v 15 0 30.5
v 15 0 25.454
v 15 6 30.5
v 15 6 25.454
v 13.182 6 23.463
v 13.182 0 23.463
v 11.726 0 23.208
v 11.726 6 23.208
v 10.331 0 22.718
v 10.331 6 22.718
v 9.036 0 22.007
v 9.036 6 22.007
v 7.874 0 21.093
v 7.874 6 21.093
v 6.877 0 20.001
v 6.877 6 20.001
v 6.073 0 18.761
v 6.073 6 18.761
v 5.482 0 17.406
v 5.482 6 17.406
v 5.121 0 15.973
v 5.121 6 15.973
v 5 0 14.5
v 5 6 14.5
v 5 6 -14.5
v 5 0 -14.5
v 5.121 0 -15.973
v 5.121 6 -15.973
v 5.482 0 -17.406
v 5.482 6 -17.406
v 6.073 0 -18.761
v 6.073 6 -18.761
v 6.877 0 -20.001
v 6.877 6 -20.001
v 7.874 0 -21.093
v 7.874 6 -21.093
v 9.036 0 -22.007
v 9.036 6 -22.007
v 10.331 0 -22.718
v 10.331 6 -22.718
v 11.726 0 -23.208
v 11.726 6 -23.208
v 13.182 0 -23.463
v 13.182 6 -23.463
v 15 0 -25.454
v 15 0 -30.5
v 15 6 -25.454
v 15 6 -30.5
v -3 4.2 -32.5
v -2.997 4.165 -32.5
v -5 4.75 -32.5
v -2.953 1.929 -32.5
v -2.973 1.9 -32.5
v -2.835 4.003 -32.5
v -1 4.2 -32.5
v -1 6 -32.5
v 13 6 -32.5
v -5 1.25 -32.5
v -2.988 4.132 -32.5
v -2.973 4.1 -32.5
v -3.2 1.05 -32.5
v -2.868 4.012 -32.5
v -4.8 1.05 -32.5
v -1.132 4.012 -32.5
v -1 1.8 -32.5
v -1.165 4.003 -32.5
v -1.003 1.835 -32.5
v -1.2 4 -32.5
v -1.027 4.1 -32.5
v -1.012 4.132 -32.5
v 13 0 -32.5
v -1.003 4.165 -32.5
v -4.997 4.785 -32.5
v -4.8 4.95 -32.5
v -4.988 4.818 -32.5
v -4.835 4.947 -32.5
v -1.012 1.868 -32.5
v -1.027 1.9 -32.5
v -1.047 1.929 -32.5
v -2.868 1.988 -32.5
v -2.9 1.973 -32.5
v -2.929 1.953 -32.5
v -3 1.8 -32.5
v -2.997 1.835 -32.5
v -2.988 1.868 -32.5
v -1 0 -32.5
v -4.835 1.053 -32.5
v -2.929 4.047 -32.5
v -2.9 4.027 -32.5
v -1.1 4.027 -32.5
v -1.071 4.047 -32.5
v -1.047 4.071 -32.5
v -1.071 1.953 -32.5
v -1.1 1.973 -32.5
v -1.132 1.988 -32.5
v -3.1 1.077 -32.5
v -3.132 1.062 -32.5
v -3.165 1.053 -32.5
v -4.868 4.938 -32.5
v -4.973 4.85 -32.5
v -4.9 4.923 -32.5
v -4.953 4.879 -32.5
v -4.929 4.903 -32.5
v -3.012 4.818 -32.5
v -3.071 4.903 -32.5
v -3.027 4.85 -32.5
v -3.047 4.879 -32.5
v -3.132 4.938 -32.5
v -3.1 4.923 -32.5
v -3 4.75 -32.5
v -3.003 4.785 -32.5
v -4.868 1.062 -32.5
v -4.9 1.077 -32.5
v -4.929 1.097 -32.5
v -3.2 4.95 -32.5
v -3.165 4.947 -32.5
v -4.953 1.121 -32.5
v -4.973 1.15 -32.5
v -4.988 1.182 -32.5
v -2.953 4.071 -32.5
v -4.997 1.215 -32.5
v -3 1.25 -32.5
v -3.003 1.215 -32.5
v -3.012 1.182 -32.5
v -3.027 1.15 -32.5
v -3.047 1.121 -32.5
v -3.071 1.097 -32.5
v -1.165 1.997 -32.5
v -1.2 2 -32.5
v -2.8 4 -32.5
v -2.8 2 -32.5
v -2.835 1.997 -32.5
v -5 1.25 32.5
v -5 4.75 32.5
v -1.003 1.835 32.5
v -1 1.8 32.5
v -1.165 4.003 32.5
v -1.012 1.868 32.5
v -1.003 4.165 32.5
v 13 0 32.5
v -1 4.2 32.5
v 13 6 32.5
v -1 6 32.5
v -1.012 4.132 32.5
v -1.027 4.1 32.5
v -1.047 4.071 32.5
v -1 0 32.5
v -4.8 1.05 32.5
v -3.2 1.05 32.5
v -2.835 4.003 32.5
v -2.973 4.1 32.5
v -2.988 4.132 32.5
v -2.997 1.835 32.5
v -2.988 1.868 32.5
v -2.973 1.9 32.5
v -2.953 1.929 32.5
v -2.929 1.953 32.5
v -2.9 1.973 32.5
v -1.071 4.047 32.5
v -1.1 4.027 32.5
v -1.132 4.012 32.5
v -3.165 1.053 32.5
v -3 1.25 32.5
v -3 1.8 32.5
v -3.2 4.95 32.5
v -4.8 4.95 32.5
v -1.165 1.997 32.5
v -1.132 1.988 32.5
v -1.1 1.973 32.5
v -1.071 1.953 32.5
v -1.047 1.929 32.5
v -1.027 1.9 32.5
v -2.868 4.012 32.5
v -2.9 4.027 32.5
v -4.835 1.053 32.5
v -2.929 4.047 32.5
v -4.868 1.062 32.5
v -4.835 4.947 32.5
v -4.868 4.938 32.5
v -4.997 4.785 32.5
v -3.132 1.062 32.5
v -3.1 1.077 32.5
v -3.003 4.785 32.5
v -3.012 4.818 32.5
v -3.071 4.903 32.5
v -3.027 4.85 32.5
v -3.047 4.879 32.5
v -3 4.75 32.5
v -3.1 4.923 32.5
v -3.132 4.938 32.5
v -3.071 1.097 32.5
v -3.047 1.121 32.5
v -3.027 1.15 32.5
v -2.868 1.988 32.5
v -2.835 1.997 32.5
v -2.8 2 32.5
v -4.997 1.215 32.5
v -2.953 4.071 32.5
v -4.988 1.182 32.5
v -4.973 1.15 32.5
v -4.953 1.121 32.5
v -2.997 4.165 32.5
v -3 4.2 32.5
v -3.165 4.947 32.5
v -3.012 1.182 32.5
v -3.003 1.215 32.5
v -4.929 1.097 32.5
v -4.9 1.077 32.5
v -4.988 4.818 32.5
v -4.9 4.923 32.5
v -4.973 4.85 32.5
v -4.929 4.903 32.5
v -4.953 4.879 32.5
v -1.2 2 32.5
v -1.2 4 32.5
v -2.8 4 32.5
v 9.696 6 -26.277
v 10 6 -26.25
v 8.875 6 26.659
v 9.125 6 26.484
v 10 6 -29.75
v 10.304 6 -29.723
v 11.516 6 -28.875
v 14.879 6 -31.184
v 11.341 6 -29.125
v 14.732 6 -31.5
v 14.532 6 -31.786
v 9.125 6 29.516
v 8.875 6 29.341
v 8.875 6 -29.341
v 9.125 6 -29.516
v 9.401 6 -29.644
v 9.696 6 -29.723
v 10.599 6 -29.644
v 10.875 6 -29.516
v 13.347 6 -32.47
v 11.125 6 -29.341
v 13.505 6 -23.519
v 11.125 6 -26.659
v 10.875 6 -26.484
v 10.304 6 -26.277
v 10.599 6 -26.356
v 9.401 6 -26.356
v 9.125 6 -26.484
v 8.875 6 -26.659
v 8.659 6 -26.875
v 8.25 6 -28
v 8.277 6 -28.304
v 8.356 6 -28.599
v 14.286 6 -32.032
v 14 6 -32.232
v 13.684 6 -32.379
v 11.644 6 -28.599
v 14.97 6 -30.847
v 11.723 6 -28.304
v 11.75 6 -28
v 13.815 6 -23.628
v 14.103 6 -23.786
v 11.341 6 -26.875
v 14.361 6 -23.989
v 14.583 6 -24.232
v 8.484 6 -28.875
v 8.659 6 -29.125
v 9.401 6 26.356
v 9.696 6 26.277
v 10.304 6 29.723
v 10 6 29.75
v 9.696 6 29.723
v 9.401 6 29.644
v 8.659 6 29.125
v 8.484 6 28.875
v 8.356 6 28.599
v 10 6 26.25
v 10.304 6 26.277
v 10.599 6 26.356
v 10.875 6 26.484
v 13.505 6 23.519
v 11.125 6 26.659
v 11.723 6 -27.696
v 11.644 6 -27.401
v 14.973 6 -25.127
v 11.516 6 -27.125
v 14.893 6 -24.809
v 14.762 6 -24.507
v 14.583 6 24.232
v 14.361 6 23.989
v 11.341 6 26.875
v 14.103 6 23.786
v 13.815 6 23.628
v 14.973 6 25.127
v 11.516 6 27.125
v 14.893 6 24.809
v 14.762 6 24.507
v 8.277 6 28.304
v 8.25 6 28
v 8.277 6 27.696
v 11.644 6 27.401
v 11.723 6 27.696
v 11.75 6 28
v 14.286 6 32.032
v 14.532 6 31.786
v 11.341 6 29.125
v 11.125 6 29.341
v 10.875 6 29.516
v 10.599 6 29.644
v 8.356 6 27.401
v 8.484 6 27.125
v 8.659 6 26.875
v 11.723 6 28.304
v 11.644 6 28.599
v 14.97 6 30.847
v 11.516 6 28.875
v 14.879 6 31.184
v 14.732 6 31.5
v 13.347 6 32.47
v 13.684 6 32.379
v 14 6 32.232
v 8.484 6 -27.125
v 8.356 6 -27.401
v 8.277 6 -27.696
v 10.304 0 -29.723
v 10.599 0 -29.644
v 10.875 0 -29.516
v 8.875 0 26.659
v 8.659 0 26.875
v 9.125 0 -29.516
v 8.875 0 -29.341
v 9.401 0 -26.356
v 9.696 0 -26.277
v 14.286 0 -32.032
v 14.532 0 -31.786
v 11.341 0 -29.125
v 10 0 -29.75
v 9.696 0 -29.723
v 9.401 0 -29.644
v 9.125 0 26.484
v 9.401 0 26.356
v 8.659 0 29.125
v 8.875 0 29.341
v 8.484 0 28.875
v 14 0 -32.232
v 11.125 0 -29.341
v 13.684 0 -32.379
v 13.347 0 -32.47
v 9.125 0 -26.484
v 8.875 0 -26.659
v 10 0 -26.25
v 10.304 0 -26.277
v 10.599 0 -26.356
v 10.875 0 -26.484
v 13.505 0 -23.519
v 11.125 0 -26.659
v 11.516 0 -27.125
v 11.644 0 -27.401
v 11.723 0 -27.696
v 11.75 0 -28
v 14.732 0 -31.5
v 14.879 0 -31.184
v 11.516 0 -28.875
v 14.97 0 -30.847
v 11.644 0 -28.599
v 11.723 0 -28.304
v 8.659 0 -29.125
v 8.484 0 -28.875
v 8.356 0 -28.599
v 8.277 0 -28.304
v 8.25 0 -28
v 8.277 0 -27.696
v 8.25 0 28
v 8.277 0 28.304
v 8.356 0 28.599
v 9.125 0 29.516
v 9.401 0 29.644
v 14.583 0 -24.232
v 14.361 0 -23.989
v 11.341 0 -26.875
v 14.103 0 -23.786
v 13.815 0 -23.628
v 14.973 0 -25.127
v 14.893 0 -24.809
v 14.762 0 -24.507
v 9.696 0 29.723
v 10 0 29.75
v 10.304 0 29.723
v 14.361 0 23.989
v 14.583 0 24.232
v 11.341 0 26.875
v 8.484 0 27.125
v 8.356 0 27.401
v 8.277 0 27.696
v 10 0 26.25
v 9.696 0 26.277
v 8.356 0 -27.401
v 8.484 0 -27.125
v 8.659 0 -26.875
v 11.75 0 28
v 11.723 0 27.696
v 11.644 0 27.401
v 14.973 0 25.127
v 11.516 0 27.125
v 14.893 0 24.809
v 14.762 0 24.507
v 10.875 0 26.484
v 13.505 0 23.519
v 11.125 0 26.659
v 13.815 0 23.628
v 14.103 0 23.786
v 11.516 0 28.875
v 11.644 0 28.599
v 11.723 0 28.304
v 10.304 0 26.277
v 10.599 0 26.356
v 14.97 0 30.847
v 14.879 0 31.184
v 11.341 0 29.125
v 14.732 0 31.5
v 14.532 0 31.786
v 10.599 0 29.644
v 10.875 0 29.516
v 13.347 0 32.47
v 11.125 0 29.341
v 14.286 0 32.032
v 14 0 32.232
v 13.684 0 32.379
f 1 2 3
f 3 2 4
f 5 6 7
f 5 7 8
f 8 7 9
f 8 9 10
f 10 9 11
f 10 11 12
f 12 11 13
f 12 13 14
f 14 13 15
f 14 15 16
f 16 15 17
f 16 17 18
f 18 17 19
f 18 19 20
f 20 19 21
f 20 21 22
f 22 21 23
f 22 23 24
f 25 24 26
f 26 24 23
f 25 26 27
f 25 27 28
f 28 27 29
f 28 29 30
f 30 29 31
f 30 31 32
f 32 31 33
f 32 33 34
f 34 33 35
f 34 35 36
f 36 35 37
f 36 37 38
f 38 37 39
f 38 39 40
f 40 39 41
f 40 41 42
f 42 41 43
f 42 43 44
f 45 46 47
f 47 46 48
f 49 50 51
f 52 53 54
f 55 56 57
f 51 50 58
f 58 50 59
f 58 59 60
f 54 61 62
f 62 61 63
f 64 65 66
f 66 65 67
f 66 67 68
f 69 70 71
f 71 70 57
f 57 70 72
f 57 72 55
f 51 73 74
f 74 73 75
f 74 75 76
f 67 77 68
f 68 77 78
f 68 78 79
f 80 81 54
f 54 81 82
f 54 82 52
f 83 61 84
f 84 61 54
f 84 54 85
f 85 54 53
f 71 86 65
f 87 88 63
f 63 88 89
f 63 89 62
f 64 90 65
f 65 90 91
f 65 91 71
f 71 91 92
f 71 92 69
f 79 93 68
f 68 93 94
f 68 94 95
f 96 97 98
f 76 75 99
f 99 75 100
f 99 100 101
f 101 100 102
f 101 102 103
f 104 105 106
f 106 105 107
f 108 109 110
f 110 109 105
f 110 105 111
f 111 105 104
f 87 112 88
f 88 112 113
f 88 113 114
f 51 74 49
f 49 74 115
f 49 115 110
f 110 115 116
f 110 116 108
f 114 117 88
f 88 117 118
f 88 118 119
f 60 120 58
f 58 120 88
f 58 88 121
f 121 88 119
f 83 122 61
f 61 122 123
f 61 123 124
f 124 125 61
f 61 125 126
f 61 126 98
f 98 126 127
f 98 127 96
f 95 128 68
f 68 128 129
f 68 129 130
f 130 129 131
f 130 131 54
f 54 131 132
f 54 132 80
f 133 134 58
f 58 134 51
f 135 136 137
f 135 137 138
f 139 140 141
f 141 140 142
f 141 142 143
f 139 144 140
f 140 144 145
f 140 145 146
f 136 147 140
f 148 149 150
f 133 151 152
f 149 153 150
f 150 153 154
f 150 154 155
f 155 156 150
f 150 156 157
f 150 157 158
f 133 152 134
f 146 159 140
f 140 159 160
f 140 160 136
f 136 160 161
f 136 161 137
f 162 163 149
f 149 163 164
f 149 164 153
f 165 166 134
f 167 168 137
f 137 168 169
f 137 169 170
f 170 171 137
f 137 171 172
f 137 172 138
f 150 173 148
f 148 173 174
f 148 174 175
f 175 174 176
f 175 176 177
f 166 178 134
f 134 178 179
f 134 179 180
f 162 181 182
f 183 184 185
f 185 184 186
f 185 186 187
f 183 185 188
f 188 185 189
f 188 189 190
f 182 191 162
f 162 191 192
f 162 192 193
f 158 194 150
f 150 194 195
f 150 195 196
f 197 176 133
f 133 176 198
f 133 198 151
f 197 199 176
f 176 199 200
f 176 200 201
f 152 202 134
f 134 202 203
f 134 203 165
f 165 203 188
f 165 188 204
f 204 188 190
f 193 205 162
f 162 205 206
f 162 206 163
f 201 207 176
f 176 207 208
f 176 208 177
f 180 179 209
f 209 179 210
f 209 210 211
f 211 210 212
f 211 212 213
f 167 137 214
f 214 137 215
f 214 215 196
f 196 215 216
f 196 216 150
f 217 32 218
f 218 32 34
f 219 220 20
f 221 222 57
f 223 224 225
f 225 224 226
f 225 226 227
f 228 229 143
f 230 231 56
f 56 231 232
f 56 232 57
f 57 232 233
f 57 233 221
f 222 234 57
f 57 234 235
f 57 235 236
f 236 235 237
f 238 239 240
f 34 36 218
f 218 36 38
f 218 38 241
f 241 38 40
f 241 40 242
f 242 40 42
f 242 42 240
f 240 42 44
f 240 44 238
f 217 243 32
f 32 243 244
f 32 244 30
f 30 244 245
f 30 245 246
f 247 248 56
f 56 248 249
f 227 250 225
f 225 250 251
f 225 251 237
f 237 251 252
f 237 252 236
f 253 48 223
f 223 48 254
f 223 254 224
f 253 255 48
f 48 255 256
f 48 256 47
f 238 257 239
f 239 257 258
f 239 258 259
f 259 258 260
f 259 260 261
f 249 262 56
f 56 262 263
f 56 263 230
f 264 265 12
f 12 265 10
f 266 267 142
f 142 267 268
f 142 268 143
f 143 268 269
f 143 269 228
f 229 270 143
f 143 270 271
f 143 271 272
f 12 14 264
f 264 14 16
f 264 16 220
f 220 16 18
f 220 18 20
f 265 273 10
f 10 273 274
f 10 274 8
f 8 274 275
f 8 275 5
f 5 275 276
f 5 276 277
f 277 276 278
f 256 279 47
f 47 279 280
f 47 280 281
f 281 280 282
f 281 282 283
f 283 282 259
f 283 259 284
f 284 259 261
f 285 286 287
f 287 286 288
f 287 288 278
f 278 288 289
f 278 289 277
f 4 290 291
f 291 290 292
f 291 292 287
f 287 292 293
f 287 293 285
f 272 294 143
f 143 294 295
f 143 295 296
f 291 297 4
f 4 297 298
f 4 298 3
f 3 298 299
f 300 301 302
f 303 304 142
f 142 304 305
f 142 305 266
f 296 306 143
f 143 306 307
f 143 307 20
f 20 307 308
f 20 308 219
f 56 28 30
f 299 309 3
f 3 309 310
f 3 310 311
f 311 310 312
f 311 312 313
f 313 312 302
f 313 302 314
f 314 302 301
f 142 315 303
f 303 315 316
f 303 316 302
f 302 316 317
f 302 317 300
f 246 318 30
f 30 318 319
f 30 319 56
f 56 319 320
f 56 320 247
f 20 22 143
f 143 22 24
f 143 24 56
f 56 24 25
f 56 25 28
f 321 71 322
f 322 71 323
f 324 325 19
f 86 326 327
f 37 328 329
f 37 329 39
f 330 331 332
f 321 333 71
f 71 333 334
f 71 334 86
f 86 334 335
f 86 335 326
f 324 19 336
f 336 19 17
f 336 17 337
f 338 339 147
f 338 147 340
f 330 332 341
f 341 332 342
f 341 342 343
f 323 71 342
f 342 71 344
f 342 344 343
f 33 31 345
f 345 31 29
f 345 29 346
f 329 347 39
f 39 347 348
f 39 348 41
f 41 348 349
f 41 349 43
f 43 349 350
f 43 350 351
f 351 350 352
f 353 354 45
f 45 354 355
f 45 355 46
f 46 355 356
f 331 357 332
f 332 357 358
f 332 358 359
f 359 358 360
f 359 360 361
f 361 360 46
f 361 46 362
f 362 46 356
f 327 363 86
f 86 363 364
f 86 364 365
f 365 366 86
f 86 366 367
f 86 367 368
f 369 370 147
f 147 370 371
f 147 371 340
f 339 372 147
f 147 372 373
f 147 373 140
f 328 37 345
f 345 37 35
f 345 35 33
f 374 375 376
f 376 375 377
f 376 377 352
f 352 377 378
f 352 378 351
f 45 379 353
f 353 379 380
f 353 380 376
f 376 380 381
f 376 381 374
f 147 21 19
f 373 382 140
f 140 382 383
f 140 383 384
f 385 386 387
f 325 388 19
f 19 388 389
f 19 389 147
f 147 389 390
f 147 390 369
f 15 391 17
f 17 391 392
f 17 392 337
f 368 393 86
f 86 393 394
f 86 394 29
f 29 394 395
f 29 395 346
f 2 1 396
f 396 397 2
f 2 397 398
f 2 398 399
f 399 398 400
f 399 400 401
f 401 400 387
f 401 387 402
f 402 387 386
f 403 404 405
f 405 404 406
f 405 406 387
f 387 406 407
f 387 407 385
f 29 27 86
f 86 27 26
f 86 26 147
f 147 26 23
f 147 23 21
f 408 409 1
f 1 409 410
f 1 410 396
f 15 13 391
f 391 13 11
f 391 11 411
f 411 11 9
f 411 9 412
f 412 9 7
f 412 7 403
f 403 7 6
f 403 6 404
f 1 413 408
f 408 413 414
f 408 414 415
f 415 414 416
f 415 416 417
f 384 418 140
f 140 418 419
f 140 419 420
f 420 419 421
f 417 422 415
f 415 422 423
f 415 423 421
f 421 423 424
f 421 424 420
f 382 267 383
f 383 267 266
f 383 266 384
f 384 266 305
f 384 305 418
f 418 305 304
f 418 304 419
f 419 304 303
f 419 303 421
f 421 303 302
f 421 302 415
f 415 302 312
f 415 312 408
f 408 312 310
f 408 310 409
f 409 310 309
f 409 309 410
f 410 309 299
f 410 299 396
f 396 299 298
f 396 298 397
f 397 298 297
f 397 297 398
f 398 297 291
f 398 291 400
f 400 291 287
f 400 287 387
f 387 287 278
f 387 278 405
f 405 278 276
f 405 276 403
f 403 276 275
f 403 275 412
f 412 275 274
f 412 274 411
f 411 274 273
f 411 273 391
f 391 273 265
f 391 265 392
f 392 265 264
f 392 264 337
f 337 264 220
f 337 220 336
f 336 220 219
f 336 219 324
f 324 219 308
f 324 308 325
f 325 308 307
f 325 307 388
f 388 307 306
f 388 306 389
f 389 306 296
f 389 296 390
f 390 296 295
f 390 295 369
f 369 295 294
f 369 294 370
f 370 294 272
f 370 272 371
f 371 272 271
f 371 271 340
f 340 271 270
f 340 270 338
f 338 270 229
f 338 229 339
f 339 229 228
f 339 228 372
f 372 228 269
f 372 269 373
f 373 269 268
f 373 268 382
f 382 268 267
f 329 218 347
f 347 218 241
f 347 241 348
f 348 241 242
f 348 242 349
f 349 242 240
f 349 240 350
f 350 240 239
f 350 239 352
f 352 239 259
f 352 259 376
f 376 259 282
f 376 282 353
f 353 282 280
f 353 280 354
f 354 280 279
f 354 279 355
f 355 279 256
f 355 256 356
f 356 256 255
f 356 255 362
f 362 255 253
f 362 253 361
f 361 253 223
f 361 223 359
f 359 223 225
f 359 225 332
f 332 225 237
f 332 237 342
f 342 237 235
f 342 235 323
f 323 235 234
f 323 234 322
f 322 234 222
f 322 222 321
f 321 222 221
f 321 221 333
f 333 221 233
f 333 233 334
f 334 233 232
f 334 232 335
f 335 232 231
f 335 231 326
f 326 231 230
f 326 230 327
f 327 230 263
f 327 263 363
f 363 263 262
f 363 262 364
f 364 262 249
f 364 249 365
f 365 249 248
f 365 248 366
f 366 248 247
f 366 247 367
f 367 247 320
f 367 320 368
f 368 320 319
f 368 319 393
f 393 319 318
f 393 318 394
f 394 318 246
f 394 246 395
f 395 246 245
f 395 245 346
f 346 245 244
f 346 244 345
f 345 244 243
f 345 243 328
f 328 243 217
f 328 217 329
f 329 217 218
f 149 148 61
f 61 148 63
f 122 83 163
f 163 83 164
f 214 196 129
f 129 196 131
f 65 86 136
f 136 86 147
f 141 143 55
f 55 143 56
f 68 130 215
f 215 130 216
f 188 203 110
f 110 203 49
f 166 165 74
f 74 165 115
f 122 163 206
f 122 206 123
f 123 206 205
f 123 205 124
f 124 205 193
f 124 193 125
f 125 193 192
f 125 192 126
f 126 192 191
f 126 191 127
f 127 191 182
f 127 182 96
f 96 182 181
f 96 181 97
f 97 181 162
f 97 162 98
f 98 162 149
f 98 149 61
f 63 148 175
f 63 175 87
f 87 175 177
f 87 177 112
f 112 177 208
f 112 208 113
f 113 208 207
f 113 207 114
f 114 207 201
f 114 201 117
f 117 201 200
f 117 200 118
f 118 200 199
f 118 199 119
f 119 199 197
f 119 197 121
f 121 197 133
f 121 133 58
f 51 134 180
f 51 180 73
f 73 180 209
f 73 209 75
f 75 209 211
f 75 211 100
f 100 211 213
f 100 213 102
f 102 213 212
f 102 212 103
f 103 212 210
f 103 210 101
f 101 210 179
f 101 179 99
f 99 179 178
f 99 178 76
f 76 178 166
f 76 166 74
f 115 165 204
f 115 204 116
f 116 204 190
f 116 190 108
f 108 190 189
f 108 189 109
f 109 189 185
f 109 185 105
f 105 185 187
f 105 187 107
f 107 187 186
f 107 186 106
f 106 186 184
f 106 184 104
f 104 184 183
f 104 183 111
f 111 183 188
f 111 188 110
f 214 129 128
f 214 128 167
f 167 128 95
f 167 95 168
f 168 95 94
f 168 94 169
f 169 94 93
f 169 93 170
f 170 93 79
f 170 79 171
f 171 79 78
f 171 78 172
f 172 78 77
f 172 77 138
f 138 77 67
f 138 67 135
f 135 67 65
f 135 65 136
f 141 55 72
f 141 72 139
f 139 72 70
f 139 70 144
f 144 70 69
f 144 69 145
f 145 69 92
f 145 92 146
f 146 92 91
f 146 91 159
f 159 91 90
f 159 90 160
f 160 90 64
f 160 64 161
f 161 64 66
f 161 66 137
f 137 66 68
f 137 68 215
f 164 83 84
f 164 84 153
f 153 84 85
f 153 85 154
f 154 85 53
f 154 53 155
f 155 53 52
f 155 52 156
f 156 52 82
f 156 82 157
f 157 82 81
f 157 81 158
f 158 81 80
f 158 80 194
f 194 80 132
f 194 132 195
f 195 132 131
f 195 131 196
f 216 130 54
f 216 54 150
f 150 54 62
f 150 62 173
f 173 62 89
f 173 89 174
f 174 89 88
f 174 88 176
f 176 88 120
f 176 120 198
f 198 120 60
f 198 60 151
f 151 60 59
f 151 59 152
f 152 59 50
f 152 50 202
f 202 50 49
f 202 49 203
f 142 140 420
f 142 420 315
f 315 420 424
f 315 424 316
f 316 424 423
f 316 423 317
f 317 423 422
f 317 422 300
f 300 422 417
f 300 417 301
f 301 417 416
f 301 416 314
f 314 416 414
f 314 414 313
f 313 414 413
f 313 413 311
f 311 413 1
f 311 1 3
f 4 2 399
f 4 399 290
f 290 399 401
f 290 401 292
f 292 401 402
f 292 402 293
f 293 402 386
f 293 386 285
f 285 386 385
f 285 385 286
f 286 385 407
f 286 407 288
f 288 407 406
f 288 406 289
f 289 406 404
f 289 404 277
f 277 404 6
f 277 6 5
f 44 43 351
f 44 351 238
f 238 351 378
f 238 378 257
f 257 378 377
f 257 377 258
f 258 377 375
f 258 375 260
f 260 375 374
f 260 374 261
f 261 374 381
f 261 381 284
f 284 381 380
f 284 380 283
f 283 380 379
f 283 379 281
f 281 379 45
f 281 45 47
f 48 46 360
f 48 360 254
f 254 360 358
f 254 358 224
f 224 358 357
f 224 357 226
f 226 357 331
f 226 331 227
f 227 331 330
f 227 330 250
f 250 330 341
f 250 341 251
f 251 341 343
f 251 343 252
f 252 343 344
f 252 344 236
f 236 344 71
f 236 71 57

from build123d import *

# Parameters (mm, degrees)
SALIENTE_EXTRUIR1_DEPTH = 6
CROQUIS2_R              = 1.75
CORTAR_EXTRUIR1_DEPTH   = 6
CORTAR_EXTRUIR2_DEPTH   = 67.977608199
REDONDEO1_R             = 0.2
REDONDEO2_R             = 2


with BuildPart() as part:
    # Croquis1 → Saliente-Extruir1 (new body)
    with BuildSketch(Plane(origin=(0, 0, 0), x_dir=(1, 0, 0), z_dir=(0, 1, 0))):
        with BuildLine():
            Line((-5, 32.5), (5, 32.5))
            Line((5, 32.5), (15, 32.5))
            Line((15, 32.5), (15, 23.5))
            Line((15, 23.5), (14, 23.5))
            ThreePointArc((14, 23.5), (7.636038969, 20.863961031), (5, 14.5))
            Line((5, 14.5), (5, -14.5))
            ThreePointArc((5, -14.5), (7.636038969, -20.863961031), (14, -23.5))
            Line((14, -23.5), (15, -23.5))
            Line((15, -23.5), (15, -32.5))
            Line((15, -32.5), (5, -32.5))
            Line((5, -32.5), (-5, -32.5))
            Line((-5, -32.5), (-5, 32.5))
        make_face()
    extrude(amount=SALIENTE_EXTRUIR1_DEPTH)

    # Croquis2 → Cortar-Extruir1 (cut)
    with BuildSketch(Plane(origin=(0, 6, 0), x_dir=(1, 0, 0), z_dir=(0, 1, 0))):
        with Locations(Location((10, -28, 0), (0, 0, 270))):
            Circle(CROQUIS2_R)
        with Locations(Location((10, 28, 0), (0, 0, 90))):
            Circle(CROQUIS2_R)
    extrude(amount=-CORTAR_EXTRUIR1_DEPTH, mode=Mode.SUBTRACT)

    # Croquis4 → Cortar-Extruir2 (cut, through all)
    with BuildSketch(Plane.XY.offset(32.5)):
        Polygon((-5, 0), (-1, 0), (-1, 2), (-3, 2), (-3, 1.05), (-5, 1.05), align=None)
        Polygon((-5, 6), (-1, 6), (-1, 4), (-3, 4), (-3, 4.95), (-5, 4.95), align=None)
    extrude(amount=-CORTAR_EXTRUIR2_DEPTH, mode=Mode.SUBTRACT)

    # Redondeo1
    redondeo1_edges = [part.edges().sort_by_distance(p)[0] for p in [
        (-5, 1.05, 0),
        (-3, 1.05, 0),
        (-3, 2, 0),
        (-1, 2, 0),
        (-5, 4.95, 0),
        (-1, 4, 0),
        (-3, 4, 0),
        (-3, 4.95, 0),
    ]]
    fillet(redondeo1_edges, radius=REDONDEO1_R)

    # Redondeo2
    redondeo2_edges = [part.edges().sort_by_distance(p)[0] for p in [
        (15, 3, 32.5),
        (15, 3, 23.5),
        (15, 3, -23.5),
        (15, 3, -32.5),
    ]]
    fillet(redondeo2_edges, radius=REDONDEO2_R)


solid = part.part
